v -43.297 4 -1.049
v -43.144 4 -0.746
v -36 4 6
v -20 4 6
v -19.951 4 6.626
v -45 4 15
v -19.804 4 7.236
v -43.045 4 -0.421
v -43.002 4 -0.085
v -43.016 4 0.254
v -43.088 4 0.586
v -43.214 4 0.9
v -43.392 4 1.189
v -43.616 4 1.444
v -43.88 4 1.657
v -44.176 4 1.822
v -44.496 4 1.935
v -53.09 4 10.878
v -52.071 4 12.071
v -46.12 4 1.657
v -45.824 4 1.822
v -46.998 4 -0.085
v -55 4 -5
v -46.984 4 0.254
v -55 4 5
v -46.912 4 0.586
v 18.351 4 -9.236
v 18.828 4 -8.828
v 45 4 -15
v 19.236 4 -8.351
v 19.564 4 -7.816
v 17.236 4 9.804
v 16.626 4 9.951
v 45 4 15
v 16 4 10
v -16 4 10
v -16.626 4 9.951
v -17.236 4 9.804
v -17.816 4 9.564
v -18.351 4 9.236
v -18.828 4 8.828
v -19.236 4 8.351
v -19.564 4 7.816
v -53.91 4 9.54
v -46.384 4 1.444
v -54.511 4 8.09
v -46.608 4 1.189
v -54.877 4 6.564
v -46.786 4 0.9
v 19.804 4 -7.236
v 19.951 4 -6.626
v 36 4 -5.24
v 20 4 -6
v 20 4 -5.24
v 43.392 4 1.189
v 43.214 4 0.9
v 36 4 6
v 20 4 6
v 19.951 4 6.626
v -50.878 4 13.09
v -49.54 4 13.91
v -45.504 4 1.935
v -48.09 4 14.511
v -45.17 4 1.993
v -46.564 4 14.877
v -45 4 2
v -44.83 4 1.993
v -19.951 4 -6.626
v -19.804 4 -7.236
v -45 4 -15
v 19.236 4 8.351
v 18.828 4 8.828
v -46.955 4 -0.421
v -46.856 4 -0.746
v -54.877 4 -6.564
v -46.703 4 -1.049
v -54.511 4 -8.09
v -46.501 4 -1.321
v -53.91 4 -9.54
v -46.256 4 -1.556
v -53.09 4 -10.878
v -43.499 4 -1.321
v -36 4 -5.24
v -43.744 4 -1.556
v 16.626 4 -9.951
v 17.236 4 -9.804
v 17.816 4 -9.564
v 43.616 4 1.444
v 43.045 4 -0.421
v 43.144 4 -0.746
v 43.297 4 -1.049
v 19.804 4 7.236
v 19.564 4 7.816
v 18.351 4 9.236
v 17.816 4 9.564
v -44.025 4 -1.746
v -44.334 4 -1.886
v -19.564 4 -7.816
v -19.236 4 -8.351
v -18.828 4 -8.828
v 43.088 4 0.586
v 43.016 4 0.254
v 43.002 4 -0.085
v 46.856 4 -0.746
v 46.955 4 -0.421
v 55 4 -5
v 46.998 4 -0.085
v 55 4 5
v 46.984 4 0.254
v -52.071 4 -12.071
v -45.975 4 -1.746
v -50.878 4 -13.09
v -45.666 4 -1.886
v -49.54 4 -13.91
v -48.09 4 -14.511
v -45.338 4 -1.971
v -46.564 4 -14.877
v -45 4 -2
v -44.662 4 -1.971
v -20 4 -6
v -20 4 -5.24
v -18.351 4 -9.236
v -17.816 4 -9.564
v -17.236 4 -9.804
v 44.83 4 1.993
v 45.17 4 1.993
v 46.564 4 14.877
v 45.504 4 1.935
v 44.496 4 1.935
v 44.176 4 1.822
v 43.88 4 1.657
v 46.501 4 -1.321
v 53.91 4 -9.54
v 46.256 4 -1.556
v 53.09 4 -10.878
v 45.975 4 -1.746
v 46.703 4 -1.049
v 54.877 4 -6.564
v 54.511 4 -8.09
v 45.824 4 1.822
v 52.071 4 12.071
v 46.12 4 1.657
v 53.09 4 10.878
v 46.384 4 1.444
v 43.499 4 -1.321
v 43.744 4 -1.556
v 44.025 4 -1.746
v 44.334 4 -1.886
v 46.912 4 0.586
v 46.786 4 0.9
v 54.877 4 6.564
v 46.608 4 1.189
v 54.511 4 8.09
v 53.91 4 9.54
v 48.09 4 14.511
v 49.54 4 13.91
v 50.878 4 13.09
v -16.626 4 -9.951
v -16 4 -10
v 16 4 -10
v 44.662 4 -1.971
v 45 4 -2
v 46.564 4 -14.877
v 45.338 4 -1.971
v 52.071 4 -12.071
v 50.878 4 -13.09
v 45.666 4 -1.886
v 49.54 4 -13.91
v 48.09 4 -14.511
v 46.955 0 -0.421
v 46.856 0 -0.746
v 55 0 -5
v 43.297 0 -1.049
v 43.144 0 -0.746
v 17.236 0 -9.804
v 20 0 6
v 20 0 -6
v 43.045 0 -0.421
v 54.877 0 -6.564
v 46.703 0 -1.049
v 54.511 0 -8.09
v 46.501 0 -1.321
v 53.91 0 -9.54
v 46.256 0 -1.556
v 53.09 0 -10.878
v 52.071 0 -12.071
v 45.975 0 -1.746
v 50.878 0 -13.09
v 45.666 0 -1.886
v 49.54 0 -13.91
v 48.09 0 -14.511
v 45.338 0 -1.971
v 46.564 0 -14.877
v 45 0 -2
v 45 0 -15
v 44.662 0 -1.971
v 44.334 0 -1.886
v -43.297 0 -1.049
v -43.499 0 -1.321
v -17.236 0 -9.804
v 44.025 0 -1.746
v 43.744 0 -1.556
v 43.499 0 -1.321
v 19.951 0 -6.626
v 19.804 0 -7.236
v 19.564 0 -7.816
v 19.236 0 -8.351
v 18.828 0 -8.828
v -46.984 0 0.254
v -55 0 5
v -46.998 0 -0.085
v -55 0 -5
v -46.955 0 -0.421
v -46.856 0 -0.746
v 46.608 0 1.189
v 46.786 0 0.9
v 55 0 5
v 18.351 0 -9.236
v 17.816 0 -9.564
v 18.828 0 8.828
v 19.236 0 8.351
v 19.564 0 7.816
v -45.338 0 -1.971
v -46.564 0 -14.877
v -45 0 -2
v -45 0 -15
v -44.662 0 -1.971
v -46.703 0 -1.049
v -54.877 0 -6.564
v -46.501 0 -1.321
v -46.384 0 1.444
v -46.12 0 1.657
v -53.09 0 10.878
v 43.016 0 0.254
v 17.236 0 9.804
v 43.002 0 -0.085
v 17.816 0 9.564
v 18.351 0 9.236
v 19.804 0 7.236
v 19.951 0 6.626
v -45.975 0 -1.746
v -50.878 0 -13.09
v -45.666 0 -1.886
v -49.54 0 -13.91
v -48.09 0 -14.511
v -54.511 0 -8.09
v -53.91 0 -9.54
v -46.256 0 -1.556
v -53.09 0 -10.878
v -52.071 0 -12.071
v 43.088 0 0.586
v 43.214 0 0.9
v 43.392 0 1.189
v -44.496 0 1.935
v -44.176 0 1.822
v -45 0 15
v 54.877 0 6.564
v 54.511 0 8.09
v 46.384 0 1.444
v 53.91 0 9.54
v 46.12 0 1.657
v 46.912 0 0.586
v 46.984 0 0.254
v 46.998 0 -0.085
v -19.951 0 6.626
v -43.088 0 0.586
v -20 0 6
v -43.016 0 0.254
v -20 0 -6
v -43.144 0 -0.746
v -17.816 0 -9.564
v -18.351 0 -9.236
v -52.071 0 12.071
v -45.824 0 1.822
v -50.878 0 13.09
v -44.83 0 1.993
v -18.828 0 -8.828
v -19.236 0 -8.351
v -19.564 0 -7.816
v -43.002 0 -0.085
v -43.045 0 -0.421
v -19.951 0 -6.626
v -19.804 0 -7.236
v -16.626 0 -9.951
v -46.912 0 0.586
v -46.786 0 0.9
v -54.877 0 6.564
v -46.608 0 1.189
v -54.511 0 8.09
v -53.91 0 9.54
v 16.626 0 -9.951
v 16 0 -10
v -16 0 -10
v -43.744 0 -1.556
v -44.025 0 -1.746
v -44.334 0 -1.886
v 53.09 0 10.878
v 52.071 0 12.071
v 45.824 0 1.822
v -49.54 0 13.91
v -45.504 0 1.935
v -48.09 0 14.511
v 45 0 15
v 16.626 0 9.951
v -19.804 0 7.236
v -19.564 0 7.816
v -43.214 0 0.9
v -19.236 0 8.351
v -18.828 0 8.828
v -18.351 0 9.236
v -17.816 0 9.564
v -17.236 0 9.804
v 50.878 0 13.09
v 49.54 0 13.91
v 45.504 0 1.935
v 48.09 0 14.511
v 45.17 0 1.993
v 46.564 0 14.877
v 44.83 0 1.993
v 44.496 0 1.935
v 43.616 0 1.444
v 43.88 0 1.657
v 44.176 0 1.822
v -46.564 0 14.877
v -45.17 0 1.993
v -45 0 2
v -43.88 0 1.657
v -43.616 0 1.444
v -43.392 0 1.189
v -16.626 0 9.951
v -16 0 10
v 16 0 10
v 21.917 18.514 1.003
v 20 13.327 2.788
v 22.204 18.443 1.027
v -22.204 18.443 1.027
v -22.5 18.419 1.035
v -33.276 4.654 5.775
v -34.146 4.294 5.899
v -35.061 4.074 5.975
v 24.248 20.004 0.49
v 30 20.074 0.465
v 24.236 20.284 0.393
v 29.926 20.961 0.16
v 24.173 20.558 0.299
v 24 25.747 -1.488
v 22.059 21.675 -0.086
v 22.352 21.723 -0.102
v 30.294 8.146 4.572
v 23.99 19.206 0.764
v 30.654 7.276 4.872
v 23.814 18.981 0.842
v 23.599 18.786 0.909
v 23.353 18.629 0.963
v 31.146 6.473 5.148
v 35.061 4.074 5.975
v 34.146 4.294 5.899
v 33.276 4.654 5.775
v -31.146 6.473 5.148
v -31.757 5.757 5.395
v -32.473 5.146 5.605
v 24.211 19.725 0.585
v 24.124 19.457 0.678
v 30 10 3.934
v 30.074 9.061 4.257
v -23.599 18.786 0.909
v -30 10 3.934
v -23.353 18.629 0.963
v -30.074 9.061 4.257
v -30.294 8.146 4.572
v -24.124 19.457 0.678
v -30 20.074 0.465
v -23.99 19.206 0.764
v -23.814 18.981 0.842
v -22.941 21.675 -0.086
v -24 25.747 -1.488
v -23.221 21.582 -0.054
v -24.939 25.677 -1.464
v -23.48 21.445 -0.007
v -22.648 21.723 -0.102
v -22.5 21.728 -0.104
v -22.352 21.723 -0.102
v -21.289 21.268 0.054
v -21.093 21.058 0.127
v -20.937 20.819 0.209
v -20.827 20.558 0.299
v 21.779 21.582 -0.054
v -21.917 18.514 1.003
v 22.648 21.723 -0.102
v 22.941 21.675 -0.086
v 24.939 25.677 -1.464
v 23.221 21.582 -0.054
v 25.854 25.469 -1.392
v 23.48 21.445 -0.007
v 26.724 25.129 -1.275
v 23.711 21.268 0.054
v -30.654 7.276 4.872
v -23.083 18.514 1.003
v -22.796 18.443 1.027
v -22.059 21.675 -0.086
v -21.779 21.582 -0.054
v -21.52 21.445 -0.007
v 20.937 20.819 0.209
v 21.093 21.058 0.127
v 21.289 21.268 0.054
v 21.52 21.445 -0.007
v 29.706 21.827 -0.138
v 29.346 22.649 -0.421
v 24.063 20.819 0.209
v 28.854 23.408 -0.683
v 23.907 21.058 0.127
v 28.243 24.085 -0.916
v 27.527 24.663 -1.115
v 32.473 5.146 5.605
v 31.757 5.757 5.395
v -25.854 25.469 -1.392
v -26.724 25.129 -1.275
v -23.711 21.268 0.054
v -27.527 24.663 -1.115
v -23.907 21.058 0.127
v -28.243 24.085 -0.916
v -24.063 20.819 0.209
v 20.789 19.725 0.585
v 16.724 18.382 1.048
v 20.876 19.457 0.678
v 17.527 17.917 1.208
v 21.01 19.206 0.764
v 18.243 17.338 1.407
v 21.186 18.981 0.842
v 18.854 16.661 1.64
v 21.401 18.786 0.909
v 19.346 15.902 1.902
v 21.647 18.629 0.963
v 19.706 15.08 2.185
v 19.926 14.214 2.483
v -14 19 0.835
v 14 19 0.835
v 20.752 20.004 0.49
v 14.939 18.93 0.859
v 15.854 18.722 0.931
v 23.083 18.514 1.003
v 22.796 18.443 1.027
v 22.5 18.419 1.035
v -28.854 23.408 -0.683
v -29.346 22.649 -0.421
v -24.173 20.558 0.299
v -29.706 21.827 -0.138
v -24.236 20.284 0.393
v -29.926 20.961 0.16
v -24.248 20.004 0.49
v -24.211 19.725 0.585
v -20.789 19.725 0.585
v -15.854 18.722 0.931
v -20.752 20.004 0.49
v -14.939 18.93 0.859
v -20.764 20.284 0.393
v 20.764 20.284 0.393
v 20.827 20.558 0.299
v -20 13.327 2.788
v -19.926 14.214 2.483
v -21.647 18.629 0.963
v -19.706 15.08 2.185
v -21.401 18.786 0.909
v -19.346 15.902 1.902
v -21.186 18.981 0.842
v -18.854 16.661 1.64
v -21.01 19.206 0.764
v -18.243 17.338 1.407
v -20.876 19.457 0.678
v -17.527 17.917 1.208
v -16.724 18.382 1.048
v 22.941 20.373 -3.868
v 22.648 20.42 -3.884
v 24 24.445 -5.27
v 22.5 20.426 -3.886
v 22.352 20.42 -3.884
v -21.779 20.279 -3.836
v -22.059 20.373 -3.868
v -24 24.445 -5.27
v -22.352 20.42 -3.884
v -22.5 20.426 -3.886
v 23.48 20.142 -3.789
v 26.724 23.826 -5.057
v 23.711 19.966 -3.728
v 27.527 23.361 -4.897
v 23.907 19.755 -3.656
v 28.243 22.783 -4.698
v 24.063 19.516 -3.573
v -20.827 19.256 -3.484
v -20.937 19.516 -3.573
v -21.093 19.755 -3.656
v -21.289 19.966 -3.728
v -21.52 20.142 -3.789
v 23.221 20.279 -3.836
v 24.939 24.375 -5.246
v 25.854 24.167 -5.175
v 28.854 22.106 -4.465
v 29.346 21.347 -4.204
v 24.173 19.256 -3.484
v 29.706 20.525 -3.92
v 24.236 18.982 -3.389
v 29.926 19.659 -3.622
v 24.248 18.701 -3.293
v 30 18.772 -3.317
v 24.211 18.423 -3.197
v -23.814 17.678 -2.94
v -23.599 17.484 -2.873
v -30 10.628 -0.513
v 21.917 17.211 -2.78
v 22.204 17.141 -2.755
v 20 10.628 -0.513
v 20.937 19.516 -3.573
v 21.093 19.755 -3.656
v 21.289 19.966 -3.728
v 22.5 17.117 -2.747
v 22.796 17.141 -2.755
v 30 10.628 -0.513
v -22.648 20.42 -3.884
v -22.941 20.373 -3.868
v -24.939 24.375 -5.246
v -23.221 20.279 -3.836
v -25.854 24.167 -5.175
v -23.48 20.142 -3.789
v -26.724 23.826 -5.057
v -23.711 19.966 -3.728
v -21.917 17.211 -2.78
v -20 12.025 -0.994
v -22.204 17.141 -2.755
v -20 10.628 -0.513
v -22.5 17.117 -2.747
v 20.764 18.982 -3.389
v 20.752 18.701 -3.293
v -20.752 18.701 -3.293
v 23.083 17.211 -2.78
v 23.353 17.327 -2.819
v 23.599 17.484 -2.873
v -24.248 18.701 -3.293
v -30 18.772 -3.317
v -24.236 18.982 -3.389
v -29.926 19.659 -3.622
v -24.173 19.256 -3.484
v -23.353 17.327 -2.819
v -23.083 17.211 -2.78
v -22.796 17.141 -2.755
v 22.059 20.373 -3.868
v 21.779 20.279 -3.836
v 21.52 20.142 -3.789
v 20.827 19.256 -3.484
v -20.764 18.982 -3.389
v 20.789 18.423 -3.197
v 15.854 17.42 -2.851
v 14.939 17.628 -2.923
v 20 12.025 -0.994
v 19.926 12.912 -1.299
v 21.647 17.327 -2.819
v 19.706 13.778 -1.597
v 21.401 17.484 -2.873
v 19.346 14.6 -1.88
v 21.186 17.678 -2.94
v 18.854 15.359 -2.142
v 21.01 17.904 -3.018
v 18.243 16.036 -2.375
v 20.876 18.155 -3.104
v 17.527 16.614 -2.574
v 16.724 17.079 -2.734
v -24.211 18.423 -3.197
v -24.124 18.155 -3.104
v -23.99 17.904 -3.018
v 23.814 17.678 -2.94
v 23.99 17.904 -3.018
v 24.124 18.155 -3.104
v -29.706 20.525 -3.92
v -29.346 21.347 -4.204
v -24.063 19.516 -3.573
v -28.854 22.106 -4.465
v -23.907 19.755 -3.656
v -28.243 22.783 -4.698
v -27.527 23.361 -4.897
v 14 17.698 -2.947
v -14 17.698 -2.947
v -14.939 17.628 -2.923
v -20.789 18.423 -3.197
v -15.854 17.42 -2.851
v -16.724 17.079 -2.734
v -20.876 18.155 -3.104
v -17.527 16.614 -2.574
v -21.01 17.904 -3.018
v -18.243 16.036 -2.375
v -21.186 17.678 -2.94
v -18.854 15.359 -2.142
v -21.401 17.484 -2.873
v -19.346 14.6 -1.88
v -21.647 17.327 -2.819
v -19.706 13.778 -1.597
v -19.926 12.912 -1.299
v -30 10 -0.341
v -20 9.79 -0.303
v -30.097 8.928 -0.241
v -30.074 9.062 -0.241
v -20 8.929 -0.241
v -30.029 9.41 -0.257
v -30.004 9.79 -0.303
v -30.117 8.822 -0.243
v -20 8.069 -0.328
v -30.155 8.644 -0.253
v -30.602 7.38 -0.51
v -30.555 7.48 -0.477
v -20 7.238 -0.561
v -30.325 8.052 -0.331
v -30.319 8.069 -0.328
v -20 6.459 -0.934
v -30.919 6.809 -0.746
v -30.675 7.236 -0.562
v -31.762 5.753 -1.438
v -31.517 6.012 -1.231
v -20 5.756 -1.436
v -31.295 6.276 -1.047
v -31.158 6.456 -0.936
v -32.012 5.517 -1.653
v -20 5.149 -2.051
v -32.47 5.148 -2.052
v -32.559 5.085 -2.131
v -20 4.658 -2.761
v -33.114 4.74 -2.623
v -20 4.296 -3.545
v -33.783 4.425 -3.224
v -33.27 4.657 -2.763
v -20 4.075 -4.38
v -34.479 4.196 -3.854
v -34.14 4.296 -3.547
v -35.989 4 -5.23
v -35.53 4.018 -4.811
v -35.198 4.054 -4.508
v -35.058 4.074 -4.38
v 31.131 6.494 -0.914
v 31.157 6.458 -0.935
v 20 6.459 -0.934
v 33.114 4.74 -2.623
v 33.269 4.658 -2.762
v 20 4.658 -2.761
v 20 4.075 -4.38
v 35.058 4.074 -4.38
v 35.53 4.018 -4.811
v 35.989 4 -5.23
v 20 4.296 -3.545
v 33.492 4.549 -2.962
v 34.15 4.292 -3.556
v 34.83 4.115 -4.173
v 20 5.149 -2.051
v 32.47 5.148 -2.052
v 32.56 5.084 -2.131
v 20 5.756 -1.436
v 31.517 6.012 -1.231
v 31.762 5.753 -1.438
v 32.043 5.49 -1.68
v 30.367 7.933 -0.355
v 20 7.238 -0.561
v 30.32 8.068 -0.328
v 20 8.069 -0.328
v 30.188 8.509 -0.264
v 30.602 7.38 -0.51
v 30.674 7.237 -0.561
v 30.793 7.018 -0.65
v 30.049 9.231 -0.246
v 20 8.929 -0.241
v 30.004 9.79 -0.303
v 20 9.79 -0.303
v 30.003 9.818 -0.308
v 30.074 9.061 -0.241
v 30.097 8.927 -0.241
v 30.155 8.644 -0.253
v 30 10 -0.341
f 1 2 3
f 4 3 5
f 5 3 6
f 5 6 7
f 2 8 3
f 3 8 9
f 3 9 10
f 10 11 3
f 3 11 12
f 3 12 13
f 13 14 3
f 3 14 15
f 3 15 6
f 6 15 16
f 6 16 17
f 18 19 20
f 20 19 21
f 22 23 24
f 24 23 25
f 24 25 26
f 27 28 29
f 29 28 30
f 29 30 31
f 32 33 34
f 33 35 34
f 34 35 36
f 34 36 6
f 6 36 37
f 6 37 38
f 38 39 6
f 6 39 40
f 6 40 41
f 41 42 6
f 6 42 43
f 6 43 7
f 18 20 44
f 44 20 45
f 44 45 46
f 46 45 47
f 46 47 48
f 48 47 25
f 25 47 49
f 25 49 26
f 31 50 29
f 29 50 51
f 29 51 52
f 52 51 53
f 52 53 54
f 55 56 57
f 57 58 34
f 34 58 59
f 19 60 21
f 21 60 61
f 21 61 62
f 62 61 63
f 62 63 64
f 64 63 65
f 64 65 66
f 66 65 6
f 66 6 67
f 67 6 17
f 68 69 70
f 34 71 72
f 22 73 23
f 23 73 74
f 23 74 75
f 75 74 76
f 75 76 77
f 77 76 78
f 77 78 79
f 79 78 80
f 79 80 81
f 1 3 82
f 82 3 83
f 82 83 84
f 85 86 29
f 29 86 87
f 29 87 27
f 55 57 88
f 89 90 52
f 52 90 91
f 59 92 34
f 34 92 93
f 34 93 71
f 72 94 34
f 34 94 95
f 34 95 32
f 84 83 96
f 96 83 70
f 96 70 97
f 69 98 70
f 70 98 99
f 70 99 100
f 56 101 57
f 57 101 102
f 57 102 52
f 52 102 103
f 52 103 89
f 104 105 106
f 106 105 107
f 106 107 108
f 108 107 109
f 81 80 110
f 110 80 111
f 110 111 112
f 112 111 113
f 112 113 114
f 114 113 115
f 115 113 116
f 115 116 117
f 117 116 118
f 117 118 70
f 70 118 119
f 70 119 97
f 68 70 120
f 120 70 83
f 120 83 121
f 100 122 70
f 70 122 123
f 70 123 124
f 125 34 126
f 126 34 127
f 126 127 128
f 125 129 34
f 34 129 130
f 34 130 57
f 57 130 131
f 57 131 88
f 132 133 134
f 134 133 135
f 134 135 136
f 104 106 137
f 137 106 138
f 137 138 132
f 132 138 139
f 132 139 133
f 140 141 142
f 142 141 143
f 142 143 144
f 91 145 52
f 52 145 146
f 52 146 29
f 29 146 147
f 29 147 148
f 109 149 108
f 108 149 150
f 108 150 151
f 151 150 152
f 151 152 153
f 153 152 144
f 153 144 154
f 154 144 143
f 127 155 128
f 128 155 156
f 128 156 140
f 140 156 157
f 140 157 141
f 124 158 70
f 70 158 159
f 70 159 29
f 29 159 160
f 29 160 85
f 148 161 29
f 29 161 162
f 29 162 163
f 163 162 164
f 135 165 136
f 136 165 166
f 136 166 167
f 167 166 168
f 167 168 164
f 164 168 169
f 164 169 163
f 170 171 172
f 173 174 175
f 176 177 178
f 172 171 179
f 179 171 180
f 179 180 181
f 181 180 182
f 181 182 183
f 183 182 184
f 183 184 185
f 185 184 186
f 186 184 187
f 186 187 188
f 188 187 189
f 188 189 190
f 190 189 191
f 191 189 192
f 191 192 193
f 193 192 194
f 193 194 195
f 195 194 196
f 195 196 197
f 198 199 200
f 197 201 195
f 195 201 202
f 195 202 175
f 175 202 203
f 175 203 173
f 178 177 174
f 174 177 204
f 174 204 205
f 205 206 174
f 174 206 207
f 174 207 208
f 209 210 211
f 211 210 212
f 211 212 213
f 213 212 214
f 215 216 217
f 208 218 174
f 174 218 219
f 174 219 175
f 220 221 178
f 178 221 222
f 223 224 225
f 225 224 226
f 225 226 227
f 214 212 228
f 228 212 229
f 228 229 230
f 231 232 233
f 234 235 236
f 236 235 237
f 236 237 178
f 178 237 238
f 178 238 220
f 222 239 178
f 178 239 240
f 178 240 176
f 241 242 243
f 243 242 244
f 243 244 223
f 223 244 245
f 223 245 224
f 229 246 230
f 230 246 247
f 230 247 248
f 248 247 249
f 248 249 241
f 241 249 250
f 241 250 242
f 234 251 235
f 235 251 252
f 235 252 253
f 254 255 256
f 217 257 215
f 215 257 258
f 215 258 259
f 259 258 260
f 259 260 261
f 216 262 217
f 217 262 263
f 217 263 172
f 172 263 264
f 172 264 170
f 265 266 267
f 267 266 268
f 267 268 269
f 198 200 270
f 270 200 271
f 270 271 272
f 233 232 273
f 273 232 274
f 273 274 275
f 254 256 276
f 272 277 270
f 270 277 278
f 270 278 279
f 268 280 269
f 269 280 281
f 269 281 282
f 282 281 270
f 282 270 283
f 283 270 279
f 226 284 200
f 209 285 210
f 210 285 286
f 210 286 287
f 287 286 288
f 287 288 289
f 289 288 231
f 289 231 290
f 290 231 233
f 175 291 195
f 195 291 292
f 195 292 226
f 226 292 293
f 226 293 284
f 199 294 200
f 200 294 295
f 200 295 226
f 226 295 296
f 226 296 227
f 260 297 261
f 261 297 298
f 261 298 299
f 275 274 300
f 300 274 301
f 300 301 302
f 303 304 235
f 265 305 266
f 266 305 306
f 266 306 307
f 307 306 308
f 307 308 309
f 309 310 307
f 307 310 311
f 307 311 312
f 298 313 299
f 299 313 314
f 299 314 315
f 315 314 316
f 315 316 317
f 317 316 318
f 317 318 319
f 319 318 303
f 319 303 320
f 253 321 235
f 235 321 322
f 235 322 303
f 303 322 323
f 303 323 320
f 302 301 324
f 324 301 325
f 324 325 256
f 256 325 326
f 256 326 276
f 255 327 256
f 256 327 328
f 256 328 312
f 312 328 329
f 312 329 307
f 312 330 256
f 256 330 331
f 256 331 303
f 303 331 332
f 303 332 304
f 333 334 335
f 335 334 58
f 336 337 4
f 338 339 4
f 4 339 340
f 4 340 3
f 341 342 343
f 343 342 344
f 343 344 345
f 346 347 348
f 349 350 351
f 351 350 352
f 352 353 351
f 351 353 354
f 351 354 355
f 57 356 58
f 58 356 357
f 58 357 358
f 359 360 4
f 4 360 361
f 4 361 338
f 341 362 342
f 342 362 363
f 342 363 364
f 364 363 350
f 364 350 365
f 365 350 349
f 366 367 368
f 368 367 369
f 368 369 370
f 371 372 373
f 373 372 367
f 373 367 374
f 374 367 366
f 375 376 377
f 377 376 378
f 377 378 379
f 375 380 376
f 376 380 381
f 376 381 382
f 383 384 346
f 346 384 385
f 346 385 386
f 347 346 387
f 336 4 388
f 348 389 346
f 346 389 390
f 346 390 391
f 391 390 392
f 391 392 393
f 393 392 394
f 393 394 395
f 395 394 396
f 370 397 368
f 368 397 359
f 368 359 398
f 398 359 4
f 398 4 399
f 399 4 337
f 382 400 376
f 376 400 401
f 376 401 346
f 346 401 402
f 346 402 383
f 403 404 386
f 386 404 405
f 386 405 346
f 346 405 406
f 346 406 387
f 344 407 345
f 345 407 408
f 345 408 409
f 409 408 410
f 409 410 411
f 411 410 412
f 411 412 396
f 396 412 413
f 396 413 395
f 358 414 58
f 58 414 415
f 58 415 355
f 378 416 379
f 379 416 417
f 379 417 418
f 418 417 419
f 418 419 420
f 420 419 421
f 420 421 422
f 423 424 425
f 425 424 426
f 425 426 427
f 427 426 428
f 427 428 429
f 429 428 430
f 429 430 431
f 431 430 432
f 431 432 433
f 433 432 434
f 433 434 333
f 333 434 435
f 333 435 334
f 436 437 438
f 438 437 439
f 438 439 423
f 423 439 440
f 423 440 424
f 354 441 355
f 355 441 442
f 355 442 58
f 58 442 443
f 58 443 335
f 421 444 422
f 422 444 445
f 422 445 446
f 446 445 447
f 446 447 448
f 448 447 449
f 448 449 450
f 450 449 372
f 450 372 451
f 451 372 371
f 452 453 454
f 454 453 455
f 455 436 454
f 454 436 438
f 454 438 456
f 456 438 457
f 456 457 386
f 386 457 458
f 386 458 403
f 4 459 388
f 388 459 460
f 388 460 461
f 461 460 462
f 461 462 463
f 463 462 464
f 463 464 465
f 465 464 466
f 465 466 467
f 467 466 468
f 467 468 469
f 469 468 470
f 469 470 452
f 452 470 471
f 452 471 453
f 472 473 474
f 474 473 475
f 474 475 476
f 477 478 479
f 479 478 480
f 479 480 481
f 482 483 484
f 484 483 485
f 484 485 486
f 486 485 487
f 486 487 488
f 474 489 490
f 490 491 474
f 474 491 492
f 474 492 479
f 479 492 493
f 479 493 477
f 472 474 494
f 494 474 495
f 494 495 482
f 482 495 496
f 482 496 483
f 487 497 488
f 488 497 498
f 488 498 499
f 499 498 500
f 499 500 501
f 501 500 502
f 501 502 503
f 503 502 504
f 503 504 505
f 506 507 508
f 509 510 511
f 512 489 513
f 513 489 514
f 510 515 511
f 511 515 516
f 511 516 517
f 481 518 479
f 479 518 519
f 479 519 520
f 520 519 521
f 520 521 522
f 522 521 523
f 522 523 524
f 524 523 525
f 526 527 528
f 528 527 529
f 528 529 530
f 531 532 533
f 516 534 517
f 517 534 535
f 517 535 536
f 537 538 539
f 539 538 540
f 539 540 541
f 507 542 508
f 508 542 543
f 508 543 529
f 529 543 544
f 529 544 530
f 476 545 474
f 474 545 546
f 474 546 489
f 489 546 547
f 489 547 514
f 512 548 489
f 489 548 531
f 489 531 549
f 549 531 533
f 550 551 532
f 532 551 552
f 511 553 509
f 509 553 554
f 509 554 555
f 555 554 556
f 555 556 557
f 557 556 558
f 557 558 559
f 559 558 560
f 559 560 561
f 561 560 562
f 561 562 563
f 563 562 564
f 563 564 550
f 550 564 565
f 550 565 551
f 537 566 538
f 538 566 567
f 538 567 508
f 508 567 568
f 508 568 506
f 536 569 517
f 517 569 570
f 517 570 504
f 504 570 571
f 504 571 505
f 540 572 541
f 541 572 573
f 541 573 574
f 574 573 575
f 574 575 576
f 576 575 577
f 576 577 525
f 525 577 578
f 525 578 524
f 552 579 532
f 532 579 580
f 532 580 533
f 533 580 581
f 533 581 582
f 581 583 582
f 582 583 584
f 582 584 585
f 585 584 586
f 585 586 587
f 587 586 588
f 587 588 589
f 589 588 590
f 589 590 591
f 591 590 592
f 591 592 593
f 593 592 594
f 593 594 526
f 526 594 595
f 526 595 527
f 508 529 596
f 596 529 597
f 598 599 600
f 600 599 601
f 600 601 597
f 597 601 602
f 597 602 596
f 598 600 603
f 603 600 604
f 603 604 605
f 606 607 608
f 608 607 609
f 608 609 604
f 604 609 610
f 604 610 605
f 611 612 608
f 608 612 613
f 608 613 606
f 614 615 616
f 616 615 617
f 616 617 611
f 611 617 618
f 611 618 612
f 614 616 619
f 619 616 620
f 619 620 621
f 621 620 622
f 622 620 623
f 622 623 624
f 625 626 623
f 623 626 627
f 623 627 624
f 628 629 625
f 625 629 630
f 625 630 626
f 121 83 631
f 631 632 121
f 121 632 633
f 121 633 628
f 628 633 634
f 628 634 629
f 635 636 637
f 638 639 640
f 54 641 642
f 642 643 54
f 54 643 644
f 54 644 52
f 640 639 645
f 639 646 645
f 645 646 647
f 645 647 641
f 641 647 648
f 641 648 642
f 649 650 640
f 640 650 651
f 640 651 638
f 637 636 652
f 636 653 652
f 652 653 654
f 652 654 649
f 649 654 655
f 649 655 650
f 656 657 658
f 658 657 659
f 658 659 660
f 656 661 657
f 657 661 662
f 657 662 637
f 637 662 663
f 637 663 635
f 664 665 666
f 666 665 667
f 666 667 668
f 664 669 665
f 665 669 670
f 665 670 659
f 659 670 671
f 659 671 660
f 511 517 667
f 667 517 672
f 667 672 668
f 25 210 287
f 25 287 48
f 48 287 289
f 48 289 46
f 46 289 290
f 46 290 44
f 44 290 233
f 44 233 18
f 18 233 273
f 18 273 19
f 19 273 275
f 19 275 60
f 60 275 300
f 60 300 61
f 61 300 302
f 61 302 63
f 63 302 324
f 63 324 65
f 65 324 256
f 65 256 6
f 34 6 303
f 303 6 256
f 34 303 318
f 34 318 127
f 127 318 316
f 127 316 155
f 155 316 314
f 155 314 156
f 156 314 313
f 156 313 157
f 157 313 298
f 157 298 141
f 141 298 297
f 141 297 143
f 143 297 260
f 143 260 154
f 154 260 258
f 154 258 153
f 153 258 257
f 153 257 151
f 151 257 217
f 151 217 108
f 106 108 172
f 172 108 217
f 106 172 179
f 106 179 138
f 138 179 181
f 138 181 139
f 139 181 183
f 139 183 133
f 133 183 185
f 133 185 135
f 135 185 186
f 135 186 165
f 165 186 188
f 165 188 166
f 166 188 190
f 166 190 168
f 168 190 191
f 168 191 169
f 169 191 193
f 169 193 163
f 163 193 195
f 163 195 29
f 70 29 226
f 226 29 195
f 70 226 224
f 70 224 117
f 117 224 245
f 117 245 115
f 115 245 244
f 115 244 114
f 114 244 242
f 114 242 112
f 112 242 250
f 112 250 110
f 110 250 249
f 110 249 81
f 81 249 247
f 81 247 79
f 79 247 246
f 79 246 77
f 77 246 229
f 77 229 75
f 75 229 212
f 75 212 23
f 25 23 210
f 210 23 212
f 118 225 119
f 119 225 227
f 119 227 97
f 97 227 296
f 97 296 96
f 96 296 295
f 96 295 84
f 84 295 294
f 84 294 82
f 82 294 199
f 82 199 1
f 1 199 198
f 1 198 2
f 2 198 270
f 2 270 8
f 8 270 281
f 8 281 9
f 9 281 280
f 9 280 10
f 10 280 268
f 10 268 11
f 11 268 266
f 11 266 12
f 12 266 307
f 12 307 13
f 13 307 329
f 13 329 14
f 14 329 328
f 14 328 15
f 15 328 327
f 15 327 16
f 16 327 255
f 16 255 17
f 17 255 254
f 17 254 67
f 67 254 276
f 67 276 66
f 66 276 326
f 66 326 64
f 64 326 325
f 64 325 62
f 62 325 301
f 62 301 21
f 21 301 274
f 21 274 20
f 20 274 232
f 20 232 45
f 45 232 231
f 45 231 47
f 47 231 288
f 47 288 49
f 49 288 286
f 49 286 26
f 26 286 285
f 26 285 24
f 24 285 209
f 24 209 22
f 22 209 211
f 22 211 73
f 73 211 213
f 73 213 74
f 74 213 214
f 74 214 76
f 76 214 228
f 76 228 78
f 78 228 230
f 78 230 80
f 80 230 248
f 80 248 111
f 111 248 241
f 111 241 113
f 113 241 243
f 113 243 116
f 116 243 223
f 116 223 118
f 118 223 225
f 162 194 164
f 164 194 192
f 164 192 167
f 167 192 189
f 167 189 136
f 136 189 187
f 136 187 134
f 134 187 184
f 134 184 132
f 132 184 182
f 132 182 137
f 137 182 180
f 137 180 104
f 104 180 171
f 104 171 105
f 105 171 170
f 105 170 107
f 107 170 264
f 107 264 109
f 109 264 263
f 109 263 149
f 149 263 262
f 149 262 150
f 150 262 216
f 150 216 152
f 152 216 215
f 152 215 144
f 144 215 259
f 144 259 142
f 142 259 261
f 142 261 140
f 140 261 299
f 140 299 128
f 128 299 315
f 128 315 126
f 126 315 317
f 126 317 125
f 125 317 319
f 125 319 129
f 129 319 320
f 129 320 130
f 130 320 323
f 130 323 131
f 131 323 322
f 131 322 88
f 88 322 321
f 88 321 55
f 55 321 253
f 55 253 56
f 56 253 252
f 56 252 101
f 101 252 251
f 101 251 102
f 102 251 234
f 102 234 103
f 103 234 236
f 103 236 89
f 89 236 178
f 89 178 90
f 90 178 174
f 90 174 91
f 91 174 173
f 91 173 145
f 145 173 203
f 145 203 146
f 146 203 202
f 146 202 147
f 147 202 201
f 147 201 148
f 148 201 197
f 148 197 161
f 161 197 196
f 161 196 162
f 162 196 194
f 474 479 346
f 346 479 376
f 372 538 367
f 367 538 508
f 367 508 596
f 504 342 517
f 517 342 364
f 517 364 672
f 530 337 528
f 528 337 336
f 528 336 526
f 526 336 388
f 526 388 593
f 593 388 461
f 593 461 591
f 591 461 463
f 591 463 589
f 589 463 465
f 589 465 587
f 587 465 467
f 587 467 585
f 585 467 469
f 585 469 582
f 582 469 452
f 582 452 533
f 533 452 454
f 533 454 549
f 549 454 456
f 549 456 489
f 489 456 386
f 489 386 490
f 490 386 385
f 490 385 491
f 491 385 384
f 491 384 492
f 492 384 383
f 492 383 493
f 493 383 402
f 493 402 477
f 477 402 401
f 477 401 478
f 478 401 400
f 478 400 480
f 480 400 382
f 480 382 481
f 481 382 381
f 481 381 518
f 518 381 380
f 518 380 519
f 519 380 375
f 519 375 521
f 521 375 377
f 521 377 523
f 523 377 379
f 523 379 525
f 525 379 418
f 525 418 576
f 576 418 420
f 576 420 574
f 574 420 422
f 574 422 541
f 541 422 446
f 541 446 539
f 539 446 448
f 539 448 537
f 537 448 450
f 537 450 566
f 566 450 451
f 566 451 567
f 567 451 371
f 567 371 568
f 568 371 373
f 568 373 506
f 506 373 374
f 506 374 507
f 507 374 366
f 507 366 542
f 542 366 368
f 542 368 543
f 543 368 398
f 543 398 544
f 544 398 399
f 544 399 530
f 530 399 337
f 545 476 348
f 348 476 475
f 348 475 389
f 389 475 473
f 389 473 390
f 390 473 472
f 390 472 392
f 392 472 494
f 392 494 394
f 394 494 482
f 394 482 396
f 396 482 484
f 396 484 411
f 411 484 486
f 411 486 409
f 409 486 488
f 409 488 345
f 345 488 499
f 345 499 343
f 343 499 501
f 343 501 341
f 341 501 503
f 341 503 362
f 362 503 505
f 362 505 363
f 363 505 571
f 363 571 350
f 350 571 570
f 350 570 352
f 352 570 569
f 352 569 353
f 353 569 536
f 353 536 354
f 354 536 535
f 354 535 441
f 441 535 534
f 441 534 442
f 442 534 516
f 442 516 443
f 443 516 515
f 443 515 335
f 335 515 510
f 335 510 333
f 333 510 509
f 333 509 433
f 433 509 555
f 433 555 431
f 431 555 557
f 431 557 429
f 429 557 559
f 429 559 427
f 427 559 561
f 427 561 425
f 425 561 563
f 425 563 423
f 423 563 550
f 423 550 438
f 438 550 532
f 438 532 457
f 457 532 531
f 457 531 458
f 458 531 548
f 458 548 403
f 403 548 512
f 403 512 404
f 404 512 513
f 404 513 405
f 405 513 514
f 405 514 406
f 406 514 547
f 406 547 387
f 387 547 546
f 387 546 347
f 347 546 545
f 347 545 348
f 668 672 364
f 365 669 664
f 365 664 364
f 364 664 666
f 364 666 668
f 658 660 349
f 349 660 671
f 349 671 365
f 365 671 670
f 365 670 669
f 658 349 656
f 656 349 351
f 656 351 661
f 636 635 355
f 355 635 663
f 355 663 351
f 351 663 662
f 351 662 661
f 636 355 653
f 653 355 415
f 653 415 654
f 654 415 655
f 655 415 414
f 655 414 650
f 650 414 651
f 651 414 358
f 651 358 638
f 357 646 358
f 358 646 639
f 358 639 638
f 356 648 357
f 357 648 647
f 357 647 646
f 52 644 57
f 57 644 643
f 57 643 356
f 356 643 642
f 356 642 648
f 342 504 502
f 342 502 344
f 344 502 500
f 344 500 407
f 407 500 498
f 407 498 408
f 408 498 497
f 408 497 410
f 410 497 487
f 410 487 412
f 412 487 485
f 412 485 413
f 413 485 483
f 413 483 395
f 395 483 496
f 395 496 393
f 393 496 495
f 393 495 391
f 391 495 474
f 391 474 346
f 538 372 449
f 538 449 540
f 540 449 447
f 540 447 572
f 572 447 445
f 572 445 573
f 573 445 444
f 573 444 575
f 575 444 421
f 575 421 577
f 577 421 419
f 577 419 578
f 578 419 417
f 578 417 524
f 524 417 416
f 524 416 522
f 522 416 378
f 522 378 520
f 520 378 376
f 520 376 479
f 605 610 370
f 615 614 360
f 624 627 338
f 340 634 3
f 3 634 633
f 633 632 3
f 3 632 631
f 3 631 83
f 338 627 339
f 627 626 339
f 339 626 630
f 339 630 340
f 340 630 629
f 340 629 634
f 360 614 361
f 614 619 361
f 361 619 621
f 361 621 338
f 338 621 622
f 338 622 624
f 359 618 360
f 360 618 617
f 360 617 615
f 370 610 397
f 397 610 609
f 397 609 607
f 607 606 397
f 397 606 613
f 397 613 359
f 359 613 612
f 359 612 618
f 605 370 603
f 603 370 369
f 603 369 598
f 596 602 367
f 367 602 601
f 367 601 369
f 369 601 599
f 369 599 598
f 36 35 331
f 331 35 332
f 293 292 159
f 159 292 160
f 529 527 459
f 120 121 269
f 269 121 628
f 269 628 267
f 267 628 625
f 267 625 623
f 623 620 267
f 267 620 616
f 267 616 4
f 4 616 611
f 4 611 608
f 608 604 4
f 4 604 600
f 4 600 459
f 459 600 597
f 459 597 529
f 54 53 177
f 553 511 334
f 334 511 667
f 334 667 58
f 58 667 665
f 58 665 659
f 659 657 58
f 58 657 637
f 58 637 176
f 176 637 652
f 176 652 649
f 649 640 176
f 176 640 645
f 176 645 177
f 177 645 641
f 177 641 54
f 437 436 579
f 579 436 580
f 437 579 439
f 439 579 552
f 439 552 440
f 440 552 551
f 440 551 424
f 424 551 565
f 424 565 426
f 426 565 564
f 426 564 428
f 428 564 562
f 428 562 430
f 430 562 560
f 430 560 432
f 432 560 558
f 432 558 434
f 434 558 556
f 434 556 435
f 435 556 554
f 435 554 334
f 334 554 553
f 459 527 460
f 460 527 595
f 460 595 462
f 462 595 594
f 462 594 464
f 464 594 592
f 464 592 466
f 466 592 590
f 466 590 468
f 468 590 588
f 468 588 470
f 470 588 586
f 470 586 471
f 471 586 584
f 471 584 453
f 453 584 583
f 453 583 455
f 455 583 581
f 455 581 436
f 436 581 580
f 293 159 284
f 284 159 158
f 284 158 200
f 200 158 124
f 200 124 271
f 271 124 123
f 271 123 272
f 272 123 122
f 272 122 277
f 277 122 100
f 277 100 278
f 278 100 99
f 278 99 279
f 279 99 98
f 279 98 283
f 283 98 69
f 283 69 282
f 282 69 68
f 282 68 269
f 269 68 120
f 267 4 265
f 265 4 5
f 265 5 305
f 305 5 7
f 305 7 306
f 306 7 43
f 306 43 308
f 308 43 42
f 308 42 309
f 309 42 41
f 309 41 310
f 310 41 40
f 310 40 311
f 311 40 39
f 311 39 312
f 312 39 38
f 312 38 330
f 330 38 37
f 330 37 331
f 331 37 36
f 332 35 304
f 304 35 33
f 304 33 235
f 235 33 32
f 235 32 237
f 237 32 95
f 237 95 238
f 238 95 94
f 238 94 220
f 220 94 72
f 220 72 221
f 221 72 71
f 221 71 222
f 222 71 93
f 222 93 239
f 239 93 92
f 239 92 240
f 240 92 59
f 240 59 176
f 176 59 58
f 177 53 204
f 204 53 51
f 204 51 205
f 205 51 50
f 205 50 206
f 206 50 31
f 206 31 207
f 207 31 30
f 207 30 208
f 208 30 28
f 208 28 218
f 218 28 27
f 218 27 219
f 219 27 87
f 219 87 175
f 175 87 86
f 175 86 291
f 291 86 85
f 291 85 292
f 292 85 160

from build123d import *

# Parameters (mm, degrees)
ESQUISSE1_R                  = 2
BOSS_EXTRU_1_DEPTH           = 4
BOSS_EXTRU_2_DEPTH           = 30
BOSS_EXTRU_2_DEPTH_BACK      = 30
ENL_V_MAT_EXTRU_1_REACH      = 23.158
ESQUISSE3_R                  = 1.75
CONG_1_R                     = 6
CONG_2_R                     = 5
ESQUISSE4_W                  = 40
ESQUISSE4_H                  = 20
ENL_V_MAT_EXTRU_2_DEPTH      = 15
ENL_V_MAT_EXTRU_2_DEPTH_BACK = 22
ESQUISSE5_W                  = 40
ESQUISSE5_H                  = 7.135689783
BOSS_EXTRU_3_DEPTH           = 4
CONG_4_R                     = 6
CONG_5_R                     = 4


with BuildPart() as part:
    # Esquisse1 → Boss.-Extru.1 (new body)
    with BuildSketch(Plane(origin=(0, 0, 0), x_dir=(1, 0, 0), z_dir=(0, 1, 0))):
        with BuildLine():
            Line((-45, 15), (45, 15))
            ThreePointArc((45, 15), (52.071067812, 12.071067812), (55, 5))
            Line((55, 5), (55, -5))
            ThreePointArc((55, -5), (52.071067812, -12.071067812), (45, -15))
            Line((45, -15), (-45, -15))
            ThreePointArc((-45, -15), (-52.071067812, -12.071067812), (-55, -5))
            Line((-55, -5), (-55, 5))
            ThreePointArc((-55, 5), (-52.071067812, 12.071067812), (-45, 15))
        make_face()
        with Locations((-45, 0)):
            Circle(ESQUISSE1_R, mode=Mode.SUBTRACT)
        with Locations((45, 0)):
            Circle(ESQUISSE1_R, mode=Mode.SUBTRACT)
    extrude(amount=BOSS_EXTRU_1_DEPTH)

    # Esquisse2 → Boss.-Extru.2 (add, two sides)
    with BuildSketch(Plane(origin=(0, 0, 0), x_dir=(0, 0, -1), z_dir=(1, 0, 0))) as boss_extru_2_sk:
        Polygon((-6, 4), (1.488067553, 25.746927239), (5.270141855, 24.444654621), (-1.769517275, 4), align=None)
    extrude(amount=BOSS_EXTRU_2_DEPTH)
    extrude(boss_extru_2_sk.sketch, amount=-BOSS_EXTRU_2_DEPTH_BACK)

    # Esquisse3 → Enlèv. mat.-Extru.1 (cut, up to next)
    with BuildSketch(Plane(origin=(0, 2.270962919, 6.595355211), x_dir=(1, 0, 0), z_dir=(0, 0.325568154, 0.945518576)), mode=Mode.PRIVATE) as enl_v_mat_extru_1_sk1:
        with Locations((22.5, 18.828665376)):
            Circle(ESQUISSE3_R)
    enl_v_mat_extru_1_tool1 = extrude(enl_v_mat_extru_1_sk1.sketch, amount=-ENL_V_MAT_EXTRU_1_REACH, mode=Mode.PRIVATE) & part.part
    add(enl_v_mat_extru_1_tool1.solids().sort_by_distance((22.5, 20.073816, 0.465341))[0], mode=Mode.SUBTRACT)
    # Esquisse3 → Enlèv. mat.-Extru.1 (cut, up to next)
    with BuildSketch(Plane(origin=(0, 2.270962919, 6.595355211), x_dir=(1, 0, 0), z_dir=(0, 0.325568154, 0.945518576)), mode=Mode.PRIVATE) as enl_v_mat_extru_1_sk2:
        with Locations((-22.5, 18.828665376)):
            Circle(ESQUISSE3_R)
    enl_v_mat_extru_1_tool2 = extrude(enl_v_mat_extru_1_sk2.sketch, amount=-ENL_V_MAT_EXTRU_1_REACH, mode=Mode.PRIVATE) & part.part
    add(enl_v_mat_extru_1_tool2.solids().sort_by_distance((-22.5, 20.073816, 0.465341))[0], mode=Mode.SUBTRACT)

    # Congé1
    cong_1_edges = [part.edges().sort_by_distance(p)[0] for p in [
        (-30, 4, 3.884758638),
        (-30, 25.09579093, -3.379104704),
        (30, 4, 3.884758638),
        (30, 25.09579093, -3.379104704),
    ]]
    fillet(cong_1_edges, radius=CONG_1_R)

    # Congé2
    cong_2_edges = [part.edges().sort_by_distance(p)[0] for p in [
        (0, 4, 1.769517275),
    ]]
    fillet(cong_2_edges, radius=CONG_2_R)

    # Esquisse4 → Enlèv. mat.-Extru.2 (cut, two sides)
    with BuildSketch(Plane(origin=(0, 4, 0), x_dir=(1, 0, 0), z_dir=(0, 1, 0))) as enl_v_mat_extru_2_sk:
        Rectangle(ESQUISSE4_W, ESQUISSE4_H)
    extrude(amount=ENL_V_MAT_EXTRU_2_DEPTH, mode=Mode.SUBTRACT)
    extrude(enl_v_mat_extru_2_sk.sketch, amount=-ENL_V_MAT_EXTRU_2_DEPTH_BACK, mode=Mode.SUBTRACT)

    # Esquisse5 → Boss.-Extru.3 (add)
    with BuildSketch(Plane(origin=(0, 2.270962919, 6.595355211), x_dir=(1, 0, 0), z_dir=(0, 0.325568154, 0.945518576))):
        with Locations((0, 21.260820485)):
            Rectangle(ESQUISSE5_W, ESQUISSE5_H)
    extrude(amount=-BOSS_EXTRU_3_DEPTH)

    # Congé4
    cong_4_edges = [part.edges().sort_by_distance(p)[0] for p in [
        (-20, 18.348863691, -1.055951351),
        (20, 18.348863691, -1.055951351),
    ]]
    fillet(cong_4_edges, radius=CONG_4_R)

    # Congé5
    cong_5_edges = [part.edges().sort_by_distance(p)[0] for p in [
        (-20, 2, 10),
        (20, 2, -10),
        (-20, 2, -10),
        (20, 2, 10),
    ]]
    fillet(cong_5_edges, radius=CONG_5_R)


solid = part.part
